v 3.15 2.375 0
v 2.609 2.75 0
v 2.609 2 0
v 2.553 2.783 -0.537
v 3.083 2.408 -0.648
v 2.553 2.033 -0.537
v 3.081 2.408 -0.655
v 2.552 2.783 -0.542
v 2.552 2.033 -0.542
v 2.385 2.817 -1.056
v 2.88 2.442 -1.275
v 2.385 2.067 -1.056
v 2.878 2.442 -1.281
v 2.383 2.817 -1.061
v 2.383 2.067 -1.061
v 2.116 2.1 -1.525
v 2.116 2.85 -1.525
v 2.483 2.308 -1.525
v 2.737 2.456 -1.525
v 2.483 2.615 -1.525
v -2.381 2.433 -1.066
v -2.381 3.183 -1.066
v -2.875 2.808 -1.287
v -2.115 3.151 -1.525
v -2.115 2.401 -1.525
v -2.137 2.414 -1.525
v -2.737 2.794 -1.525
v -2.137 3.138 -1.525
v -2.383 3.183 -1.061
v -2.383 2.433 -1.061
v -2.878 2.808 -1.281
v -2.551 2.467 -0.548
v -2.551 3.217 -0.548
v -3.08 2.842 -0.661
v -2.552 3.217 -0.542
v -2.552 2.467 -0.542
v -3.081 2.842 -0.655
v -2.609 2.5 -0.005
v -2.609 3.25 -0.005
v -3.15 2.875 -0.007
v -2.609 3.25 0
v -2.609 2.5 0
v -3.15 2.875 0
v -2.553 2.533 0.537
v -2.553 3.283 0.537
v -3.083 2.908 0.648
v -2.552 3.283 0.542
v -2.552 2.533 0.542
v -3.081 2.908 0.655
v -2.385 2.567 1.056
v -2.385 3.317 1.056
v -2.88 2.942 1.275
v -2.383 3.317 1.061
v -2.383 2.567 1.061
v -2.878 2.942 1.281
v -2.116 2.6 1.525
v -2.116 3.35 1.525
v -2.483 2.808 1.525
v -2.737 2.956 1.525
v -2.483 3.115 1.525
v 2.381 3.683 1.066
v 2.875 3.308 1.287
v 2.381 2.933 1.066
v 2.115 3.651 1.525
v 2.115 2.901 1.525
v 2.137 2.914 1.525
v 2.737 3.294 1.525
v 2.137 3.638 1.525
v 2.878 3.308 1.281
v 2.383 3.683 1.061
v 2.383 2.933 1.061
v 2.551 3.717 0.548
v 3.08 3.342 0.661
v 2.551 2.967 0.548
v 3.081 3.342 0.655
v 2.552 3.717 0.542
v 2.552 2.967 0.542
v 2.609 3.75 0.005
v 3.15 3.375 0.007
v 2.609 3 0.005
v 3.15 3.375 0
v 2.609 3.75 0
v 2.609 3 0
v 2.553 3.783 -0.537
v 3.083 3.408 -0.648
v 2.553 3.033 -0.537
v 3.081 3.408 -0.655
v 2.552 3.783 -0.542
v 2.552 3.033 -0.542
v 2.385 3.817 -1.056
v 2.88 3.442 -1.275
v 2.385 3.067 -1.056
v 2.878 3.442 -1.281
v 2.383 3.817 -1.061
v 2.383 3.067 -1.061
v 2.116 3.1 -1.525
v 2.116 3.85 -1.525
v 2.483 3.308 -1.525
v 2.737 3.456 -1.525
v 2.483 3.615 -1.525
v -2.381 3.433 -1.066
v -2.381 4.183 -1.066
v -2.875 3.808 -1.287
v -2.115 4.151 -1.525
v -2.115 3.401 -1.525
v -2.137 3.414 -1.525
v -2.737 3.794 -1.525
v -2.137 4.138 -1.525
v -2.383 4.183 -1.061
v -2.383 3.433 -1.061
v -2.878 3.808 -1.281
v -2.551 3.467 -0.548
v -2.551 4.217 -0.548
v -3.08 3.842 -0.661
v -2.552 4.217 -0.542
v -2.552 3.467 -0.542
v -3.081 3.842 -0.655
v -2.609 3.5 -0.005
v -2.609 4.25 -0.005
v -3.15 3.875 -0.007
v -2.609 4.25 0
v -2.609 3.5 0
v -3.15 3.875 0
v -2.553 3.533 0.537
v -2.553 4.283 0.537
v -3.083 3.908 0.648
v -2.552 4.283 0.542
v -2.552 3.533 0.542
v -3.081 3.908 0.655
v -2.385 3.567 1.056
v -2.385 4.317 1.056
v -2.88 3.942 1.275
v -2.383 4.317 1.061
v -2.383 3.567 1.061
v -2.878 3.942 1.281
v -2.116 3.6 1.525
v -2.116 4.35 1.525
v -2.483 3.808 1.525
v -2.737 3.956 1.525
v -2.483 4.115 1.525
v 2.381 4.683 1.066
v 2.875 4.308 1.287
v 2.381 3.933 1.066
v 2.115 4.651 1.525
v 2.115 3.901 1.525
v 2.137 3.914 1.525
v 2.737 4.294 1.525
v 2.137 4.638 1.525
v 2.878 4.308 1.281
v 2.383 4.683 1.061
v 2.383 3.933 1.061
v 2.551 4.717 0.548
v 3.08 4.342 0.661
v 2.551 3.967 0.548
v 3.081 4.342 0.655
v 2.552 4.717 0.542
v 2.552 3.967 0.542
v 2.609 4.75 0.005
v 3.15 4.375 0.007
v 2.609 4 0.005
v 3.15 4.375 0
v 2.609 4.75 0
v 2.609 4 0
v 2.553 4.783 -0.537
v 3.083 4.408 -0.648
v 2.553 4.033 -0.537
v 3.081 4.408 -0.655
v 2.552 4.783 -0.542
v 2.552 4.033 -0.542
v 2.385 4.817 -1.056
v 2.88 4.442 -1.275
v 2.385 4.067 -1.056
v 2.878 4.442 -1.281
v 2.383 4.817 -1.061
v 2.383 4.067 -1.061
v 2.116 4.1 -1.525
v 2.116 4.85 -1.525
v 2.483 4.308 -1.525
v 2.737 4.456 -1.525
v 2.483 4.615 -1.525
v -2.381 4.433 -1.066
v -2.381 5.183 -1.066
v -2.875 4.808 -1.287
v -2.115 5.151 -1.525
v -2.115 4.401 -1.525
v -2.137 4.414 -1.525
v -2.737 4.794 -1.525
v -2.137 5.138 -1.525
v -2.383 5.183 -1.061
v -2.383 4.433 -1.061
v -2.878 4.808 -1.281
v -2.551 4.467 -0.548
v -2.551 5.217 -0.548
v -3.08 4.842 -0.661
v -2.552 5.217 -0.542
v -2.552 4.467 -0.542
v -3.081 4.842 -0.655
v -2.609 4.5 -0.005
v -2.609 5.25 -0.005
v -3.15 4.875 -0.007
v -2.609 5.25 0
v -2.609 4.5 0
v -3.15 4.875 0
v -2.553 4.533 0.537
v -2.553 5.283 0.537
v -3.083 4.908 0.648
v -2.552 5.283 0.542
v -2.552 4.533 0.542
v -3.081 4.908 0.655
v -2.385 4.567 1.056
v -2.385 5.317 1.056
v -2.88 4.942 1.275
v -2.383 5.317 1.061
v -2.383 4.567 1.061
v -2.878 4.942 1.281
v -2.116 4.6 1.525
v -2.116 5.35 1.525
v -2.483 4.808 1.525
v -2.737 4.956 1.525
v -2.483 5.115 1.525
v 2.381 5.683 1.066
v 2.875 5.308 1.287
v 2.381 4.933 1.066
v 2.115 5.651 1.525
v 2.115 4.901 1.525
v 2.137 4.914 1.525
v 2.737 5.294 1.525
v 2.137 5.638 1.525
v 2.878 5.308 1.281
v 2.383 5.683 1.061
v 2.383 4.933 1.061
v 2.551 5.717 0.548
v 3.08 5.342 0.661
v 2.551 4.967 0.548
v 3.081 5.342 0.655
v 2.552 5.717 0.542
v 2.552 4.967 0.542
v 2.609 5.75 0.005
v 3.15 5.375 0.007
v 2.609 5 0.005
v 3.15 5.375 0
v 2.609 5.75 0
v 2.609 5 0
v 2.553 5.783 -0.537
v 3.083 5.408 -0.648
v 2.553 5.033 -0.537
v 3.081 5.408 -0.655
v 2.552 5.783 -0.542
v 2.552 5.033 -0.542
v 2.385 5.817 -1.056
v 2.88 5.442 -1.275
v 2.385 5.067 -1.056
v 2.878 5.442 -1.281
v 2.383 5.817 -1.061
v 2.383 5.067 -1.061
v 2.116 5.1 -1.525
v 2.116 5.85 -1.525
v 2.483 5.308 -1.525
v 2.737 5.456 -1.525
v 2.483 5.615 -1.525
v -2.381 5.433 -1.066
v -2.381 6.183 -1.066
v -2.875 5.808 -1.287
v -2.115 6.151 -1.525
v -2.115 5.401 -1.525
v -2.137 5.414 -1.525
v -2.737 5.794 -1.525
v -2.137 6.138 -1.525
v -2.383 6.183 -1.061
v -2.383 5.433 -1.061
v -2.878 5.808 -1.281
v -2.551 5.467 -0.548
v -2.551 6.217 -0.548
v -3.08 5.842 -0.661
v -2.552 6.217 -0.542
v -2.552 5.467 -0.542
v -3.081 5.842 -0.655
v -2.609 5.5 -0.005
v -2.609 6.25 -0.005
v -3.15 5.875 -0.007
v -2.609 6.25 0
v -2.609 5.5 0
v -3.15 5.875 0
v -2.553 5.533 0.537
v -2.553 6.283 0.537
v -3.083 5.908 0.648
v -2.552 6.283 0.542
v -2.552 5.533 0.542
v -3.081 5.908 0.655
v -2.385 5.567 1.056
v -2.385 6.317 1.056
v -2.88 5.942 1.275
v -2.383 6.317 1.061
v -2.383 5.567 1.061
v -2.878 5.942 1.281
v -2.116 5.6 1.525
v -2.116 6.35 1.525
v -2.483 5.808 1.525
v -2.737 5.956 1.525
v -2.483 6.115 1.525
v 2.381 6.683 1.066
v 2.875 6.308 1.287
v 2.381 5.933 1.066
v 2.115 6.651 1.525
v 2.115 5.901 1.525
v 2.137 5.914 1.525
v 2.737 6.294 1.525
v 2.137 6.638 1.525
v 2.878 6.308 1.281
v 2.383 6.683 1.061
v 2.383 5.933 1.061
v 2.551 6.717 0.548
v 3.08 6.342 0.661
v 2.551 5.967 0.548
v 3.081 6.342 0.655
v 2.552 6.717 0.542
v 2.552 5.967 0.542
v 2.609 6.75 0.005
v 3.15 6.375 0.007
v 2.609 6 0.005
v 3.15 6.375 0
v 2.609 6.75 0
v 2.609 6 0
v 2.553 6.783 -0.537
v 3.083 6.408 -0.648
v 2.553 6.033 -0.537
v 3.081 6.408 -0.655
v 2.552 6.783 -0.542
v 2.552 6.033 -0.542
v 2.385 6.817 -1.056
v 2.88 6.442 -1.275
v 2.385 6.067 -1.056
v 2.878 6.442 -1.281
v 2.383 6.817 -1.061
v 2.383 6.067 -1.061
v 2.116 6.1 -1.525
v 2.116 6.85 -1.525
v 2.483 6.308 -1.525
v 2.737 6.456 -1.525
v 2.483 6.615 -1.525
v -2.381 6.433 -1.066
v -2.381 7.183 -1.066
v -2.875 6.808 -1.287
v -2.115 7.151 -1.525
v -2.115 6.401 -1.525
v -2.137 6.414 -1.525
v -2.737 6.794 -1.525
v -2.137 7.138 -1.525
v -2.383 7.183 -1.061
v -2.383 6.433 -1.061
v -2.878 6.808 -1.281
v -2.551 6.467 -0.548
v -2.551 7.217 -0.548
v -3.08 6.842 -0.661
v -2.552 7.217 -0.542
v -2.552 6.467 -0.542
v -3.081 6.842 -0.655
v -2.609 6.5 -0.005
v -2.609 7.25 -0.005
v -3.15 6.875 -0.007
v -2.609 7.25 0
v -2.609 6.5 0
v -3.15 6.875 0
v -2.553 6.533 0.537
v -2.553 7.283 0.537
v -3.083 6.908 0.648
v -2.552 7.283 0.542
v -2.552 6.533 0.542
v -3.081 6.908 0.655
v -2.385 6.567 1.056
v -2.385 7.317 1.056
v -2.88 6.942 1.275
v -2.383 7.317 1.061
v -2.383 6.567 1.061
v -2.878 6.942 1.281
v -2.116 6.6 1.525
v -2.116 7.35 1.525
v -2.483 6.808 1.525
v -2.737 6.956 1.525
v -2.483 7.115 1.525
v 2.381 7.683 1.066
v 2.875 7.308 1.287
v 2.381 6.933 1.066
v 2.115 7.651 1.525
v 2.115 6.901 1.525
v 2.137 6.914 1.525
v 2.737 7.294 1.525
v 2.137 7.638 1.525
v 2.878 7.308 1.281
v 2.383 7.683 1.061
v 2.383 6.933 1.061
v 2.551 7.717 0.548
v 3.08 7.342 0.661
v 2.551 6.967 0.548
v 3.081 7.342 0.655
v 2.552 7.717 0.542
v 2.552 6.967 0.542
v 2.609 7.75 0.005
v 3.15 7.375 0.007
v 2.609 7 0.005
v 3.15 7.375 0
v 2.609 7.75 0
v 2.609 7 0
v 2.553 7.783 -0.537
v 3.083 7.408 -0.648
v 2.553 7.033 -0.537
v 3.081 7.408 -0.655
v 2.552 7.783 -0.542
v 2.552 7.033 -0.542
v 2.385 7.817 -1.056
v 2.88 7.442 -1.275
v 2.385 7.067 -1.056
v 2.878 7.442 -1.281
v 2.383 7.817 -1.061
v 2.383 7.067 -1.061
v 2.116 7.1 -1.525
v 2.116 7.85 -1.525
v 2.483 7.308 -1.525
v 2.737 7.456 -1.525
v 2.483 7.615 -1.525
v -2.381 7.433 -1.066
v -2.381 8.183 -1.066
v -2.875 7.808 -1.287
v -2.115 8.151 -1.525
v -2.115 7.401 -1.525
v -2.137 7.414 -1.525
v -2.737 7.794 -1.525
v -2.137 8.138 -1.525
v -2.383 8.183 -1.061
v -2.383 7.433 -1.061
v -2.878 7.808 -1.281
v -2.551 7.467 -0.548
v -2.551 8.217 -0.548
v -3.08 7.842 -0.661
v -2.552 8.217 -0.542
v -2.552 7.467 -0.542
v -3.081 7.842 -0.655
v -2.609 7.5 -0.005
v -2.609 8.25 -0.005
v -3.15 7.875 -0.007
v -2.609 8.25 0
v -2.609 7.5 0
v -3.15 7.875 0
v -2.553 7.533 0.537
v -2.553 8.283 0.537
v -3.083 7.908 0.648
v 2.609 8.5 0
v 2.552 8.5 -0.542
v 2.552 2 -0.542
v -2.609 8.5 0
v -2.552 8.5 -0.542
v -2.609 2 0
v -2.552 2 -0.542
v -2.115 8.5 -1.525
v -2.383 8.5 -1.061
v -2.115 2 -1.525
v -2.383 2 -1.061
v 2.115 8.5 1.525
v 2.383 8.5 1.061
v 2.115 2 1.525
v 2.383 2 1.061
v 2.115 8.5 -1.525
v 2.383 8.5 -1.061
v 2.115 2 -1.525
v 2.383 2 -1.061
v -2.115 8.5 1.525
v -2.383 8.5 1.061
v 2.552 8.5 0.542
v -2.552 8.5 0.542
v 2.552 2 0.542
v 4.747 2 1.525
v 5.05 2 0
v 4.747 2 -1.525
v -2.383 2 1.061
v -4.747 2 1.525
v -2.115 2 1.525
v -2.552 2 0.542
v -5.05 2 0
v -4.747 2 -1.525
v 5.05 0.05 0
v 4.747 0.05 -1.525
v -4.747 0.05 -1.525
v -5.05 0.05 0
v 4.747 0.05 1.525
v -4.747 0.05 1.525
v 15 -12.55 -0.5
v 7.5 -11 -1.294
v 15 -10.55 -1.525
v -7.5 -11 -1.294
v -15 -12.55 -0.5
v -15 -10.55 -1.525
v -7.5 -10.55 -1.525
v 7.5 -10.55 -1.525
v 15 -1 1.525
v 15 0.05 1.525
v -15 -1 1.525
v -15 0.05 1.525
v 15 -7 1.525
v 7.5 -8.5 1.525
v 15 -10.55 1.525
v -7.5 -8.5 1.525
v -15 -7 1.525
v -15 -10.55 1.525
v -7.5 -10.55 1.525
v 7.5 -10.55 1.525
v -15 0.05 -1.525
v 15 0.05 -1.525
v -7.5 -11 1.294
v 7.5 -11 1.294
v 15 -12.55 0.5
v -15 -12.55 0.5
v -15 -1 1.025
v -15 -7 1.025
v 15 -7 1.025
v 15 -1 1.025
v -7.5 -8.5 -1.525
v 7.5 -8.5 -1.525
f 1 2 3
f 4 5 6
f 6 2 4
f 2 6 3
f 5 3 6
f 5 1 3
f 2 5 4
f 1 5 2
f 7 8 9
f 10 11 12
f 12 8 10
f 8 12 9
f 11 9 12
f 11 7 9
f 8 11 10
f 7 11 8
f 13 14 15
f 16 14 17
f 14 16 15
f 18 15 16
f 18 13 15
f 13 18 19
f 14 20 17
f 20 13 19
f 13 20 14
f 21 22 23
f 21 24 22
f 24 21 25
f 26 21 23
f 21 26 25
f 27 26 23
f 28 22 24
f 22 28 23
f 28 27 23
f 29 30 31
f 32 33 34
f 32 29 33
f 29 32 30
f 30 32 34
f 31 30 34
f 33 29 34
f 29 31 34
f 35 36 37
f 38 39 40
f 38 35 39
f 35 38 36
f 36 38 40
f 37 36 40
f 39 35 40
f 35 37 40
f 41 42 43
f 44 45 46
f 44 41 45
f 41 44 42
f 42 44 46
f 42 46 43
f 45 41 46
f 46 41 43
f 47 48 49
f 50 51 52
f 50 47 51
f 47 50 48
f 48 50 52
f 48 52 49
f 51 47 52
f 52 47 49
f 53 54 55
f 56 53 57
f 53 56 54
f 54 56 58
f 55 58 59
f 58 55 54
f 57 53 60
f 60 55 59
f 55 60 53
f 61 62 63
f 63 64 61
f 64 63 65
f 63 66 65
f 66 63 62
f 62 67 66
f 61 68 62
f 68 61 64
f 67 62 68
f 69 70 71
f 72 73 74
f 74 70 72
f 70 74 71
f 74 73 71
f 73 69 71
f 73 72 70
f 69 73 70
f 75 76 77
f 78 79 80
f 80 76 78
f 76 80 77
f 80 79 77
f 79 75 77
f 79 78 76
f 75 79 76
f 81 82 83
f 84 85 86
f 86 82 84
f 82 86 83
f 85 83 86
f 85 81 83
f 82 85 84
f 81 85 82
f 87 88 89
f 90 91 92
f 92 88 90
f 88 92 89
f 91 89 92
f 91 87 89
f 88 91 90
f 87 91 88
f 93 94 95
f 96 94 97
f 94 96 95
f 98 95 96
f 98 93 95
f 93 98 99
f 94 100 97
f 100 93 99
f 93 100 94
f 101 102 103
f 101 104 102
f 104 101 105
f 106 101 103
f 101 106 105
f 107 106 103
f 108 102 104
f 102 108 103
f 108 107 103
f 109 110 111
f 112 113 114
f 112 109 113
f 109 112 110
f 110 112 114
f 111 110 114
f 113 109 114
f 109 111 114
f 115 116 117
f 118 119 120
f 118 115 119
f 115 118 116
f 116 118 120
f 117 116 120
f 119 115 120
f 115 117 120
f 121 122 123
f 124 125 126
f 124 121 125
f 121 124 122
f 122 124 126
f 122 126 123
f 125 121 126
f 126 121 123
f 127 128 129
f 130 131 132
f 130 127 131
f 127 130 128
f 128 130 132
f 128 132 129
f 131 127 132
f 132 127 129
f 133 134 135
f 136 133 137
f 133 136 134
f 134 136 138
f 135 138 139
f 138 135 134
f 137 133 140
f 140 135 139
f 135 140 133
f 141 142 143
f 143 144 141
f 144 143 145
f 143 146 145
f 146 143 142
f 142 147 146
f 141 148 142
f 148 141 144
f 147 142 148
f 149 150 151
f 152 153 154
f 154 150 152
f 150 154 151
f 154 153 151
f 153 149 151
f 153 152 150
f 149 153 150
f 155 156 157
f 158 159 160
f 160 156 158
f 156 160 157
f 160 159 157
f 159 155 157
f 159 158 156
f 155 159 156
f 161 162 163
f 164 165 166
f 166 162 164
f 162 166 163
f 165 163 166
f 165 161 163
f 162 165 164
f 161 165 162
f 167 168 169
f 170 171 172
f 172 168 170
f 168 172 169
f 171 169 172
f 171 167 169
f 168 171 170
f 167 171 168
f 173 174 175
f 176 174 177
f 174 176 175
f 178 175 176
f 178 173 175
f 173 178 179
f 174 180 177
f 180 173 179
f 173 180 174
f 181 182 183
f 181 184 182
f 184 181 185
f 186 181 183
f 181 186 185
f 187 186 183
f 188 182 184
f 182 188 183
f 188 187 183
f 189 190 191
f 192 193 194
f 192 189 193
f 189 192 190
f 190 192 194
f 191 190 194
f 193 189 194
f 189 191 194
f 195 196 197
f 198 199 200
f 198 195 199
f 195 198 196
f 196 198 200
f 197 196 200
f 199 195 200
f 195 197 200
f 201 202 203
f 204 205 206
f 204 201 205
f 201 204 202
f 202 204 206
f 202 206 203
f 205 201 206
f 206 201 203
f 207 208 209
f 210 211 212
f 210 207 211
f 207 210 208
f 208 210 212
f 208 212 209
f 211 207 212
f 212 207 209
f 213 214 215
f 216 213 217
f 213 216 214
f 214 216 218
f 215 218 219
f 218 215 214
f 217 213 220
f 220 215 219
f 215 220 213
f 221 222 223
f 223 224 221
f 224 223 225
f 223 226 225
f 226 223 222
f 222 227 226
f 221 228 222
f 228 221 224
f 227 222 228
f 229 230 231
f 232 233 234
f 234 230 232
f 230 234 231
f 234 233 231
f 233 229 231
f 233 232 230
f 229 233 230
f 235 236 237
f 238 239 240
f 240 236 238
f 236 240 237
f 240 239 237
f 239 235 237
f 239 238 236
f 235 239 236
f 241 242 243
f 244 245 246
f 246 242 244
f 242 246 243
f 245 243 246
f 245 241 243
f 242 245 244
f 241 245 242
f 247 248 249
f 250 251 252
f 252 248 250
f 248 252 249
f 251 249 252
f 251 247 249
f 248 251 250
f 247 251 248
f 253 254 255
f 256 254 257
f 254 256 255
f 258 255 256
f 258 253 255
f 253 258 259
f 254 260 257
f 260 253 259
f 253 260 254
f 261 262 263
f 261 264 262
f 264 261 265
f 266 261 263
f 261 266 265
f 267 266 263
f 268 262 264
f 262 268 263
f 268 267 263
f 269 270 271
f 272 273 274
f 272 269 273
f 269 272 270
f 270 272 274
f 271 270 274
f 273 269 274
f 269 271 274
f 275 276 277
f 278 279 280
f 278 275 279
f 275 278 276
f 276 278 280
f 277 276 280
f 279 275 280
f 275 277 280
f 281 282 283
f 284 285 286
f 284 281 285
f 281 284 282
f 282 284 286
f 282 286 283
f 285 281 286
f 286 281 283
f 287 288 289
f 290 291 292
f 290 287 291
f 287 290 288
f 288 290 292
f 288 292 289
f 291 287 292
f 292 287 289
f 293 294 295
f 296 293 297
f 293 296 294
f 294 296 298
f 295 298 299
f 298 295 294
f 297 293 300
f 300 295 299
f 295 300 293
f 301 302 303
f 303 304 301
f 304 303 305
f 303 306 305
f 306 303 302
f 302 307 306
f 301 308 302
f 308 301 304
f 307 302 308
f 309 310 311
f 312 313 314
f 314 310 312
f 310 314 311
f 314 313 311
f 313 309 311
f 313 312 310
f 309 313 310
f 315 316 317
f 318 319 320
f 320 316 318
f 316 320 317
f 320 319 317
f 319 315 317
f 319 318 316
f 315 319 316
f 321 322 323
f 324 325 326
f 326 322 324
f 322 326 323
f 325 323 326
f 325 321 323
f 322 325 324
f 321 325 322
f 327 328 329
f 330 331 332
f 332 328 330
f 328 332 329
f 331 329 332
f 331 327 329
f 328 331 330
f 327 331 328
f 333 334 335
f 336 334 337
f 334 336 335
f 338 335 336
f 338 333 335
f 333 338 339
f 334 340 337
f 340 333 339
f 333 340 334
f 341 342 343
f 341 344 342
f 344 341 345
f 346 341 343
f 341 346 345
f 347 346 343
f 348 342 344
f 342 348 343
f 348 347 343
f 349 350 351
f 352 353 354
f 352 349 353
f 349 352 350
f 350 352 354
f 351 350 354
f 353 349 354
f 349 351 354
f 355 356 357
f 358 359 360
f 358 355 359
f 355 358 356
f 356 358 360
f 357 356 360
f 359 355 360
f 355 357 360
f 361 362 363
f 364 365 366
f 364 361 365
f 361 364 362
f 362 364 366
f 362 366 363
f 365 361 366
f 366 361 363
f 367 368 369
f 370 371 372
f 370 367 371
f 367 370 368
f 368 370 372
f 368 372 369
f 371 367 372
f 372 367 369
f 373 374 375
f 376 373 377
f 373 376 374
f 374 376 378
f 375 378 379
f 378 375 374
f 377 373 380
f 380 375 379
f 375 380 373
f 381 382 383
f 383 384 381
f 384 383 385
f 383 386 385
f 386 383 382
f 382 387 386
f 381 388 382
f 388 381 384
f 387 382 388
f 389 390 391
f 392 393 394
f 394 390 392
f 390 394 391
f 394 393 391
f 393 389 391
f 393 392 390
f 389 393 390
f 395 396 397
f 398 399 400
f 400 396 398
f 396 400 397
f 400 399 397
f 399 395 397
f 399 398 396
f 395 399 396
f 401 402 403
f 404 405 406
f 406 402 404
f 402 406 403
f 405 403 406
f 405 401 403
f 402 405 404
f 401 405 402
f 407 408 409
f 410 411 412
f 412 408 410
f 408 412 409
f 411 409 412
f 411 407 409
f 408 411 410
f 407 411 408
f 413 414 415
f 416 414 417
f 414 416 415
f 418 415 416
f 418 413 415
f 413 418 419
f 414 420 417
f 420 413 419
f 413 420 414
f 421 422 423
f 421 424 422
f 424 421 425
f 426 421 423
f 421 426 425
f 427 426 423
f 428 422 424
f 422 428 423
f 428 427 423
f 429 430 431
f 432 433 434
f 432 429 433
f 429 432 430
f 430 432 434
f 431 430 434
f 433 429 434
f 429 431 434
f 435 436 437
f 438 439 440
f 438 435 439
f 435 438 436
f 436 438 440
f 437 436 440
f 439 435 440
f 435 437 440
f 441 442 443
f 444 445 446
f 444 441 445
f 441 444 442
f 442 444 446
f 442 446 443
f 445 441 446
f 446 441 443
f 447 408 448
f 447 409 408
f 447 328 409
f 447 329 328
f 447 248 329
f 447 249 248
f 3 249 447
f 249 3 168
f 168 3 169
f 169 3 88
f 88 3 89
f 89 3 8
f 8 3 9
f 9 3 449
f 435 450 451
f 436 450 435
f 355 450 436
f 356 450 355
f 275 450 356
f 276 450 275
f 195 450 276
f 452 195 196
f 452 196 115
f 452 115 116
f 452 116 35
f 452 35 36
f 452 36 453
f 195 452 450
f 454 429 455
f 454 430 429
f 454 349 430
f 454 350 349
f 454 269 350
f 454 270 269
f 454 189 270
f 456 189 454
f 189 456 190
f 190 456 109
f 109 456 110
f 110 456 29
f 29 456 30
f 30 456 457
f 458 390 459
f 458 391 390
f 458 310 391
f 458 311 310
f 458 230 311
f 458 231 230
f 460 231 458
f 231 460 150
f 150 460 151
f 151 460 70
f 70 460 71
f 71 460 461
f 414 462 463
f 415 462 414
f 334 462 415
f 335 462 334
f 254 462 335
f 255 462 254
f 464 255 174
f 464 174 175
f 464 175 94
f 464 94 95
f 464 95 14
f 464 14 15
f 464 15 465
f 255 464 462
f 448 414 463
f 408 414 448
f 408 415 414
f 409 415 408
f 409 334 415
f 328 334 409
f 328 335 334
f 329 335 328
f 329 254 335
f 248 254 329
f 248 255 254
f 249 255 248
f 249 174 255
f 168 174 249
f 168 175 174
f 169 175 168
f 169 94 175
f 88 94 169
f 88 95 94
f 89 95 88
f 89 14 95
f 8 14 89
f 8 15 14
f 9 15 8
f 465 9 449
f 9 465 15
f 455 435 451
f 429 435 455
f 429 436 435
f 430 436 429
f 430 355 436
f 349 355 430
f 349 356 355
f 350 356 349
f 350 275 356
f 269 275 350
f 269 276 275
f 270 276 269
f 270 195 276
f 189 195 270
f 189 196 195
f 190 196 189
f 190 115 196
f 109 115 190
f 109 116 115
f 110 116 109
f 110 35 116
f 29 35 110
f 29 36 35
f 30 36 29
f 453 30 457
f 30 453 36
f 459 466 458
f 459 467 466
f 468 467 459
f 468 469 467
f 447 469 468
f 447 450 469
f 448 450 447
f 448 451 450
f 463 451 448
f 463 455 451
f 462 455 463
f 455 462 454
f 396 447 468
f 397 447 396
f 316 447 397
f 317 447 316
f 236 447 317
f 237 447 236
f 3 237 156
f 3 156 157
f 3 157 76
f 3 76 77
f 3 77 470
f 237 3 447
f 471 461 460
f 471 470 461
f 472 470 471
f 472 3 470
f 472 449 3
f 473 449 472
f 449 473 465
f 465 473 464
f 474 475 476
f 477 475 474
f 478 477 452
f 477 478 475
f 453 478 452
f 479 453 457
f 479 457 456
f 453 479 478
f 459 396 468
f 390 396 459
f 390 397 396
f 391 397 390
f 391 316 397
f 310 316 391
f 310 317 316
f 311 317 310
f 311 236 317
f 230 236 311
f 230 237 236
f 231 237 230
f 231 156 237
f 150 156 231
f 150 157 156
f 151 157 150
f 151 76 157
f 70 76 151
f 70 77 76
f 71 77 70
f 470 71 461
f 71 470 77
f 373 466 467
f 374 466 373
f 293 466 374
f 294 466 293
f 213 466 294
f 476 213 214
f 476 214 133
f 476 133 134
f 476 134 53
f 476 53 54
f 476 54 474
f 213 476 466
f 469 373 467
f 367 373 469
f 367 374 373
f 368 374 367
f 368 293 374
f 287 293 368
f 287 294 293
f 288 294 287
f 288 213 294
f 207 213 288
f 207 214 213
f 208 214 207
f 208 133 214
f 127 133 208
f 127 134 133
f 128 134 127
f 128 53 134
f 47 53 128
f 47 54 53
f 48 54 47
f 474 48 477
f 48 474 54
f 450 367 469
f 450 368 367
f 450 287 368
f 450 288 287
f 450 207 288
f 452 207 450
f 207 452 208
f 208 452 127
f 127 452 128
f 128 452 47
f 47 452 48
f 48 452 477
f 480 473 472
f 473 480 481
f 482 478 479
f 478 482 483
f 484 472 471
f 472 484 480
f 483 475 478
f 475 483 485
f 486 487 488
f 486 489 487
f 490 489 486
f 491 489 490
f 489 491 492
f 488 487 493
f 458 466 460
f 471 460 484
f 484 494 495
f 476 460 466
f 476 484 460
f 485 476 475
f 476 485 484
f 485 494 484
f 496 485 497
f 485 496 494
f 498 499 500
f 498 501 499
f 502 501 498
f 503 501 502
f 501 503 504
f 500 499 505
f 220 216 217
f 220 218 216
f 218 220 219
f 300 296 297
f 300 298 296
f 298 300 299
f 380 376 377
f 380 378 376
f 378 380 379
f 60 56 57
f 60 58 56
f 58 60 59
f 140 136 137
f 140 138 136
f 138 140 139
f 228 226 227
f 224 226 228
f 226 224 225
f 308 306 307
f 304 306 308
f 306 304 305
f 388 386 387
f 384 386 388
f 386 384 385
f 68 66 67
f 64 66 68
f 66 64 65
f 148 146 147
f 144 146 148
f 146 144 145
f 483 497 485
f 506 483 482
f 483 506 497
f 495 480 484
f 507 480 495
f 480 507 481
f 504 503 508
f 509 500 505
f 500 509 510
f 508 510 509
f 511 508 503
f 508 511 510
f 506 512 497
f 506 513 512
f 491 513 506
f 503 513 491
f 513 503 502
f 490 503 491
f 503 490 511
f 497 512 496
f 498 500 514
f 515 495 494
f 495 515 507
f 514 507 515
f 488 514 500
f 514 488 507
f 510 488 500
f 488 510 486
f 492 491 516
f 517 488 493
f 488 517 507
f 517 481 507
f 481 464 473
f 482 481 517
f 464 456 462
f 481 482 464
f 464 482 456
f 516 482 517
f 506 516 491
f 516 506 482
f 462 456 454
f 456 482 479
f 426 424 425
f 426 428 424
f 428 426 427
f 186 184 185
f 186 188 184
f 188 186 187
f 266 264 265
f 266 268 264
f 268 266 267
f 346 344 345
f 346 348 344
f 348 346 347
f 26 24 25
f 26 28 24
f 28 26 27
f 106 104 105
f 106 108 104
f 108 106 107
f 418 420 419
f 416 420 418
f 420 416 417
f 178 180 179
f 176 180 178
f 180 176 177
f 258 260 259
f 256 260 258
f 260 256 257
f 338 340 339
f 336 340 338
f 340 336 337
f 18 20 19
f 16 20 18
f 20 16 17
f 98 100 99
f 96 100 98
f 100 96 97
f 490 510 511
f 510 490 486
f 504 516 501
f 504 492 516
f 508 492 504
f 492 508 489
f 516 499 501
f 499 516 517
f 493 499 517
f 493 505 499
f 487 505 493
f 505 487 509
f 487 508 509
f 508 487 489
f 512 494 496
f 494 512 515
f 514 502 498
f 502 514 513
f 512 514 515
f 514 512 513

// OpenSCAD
use <lib/ISOThread.scad>
// Hand Twistable Loop

// Typical camera mounts are 3/4 inch or 1/4 inch
screwDia=6.35-0.25; // 6.35mm == 1/4 inch
screwLen=6;
screwWasherThickness=2;
screwWasherDiameter=screwDia+4;

flagLabel=6;
flagHead=4.5;
flagWidth=30;

loopCutHeight=2.5;
loopCutWidth=15; // paper sticker tag is 14mm wide

layerHeight=0.3;

rotate([-90,0,0])
intersection()
{
    screwFlatCut=screwDia/2;
    union()
    {
         // Screw
        union()
        {
            translate([0,0,screwWasherThickness])
            {
                thread_out(screwDia,screwLen+0.5);
                thread_out_centre(screwDia+0.2,screwLen+0.5);
            }
            cylinder(d=screwWasherDiameter, h=screwWasherThickness);
            translate([0,0,screwWasherThickness+1/2])
                %cube([10,10,1], center=true);
        }
        difference()
        {
            // Head
            hull()
            {
                cube([flagWidth,screwFlatCut,0.1], center=true);
                translate([0,0,-(flagLabel+2)-flagHead+2])
                    cube([flagWidth,screwFlatCut,0.1], center=true);
                translate([0,0,-(flagLabel+2)-flagHead])
                    cube([flagWidth,1,0.1], center=true);
            }
            // Loop
            translate([0,0,-(flagLabel+2)-flagHead+loopCutHeight/2+1.5])
                cube([loopCutWidth,screwFlatCut+1,loopCutHeight], center=true);
            // Paper Slot
            paperWindowW=flagWidth-6;
            paperThickness=0.8;
            translate([0,-screwFlatCut+0.5,-(flagLabel+2)/2])
                cube([flagWidth+1,screwFlatCut,flagLabel], center=true);
//            translate([0,0,-(flagLabel+2)/2])
//                hull()
//                {
//                    cube([flagWidth-6,screwFlatCut-2,flagLabel-1], center=true);
//                    translate([0,paperThickness/2,0])
//                        cube([flagWidth-2,0.5,flagLabel+0.5], center=true);
//                }
            // Paper Insert Slit
//            translate([flagWidth/2-2.5,screwFlatCut/2,-(flagLabel-2)/2-2])
//                cube([2,screwFlatCut/2+0.1,(flagLabel+0.5)], center=true);
//            translate([-flagWidth/2+2.5,screwFlatCut/2,-(flagLabel-2)/2-2])
//                cube([2,screwFlatCut/2+0.1,(flagLabel+0.5)], center=true);
            // Simulated paper model
            if(0)
            translate([0,screwFlatCut/2-1.5,-(flagLabel-2)/2-2])
                %cube([flagWidth-2, 0.1, flagLabel-0.1], center=true);
        }

        // Brim for more reliable printing if needed
        if (0)
        hull()
        {
            translate([0,screwFlatCut/2,screwLen+screwWasherThickness])
                cube([screwDia-2,layerHeight*2+0.1,0.01], center=true);
            translate([0,screwFlatCut/2,screwLen+10])
                cube([screwDia*2,layerHeight*2+0.1,0.01], center=true);
        }
        if (0)
        hull()
        {
            translate([0,screwFlatCut/2,0])
                cube([1,layerHeight*2+0.1,0.01], center=true);
            translate([0,screwFlatCut/2,-10])
                cube([3,layerHeight*2+0.1,0.01], center=true);
        }
    }

    // Cut for ease of printing
    cube([screwDia*2+flagWidth, screwFlatCut, screwLen*3+10+(flagLabel+2)+flagHead], center=true);
}
